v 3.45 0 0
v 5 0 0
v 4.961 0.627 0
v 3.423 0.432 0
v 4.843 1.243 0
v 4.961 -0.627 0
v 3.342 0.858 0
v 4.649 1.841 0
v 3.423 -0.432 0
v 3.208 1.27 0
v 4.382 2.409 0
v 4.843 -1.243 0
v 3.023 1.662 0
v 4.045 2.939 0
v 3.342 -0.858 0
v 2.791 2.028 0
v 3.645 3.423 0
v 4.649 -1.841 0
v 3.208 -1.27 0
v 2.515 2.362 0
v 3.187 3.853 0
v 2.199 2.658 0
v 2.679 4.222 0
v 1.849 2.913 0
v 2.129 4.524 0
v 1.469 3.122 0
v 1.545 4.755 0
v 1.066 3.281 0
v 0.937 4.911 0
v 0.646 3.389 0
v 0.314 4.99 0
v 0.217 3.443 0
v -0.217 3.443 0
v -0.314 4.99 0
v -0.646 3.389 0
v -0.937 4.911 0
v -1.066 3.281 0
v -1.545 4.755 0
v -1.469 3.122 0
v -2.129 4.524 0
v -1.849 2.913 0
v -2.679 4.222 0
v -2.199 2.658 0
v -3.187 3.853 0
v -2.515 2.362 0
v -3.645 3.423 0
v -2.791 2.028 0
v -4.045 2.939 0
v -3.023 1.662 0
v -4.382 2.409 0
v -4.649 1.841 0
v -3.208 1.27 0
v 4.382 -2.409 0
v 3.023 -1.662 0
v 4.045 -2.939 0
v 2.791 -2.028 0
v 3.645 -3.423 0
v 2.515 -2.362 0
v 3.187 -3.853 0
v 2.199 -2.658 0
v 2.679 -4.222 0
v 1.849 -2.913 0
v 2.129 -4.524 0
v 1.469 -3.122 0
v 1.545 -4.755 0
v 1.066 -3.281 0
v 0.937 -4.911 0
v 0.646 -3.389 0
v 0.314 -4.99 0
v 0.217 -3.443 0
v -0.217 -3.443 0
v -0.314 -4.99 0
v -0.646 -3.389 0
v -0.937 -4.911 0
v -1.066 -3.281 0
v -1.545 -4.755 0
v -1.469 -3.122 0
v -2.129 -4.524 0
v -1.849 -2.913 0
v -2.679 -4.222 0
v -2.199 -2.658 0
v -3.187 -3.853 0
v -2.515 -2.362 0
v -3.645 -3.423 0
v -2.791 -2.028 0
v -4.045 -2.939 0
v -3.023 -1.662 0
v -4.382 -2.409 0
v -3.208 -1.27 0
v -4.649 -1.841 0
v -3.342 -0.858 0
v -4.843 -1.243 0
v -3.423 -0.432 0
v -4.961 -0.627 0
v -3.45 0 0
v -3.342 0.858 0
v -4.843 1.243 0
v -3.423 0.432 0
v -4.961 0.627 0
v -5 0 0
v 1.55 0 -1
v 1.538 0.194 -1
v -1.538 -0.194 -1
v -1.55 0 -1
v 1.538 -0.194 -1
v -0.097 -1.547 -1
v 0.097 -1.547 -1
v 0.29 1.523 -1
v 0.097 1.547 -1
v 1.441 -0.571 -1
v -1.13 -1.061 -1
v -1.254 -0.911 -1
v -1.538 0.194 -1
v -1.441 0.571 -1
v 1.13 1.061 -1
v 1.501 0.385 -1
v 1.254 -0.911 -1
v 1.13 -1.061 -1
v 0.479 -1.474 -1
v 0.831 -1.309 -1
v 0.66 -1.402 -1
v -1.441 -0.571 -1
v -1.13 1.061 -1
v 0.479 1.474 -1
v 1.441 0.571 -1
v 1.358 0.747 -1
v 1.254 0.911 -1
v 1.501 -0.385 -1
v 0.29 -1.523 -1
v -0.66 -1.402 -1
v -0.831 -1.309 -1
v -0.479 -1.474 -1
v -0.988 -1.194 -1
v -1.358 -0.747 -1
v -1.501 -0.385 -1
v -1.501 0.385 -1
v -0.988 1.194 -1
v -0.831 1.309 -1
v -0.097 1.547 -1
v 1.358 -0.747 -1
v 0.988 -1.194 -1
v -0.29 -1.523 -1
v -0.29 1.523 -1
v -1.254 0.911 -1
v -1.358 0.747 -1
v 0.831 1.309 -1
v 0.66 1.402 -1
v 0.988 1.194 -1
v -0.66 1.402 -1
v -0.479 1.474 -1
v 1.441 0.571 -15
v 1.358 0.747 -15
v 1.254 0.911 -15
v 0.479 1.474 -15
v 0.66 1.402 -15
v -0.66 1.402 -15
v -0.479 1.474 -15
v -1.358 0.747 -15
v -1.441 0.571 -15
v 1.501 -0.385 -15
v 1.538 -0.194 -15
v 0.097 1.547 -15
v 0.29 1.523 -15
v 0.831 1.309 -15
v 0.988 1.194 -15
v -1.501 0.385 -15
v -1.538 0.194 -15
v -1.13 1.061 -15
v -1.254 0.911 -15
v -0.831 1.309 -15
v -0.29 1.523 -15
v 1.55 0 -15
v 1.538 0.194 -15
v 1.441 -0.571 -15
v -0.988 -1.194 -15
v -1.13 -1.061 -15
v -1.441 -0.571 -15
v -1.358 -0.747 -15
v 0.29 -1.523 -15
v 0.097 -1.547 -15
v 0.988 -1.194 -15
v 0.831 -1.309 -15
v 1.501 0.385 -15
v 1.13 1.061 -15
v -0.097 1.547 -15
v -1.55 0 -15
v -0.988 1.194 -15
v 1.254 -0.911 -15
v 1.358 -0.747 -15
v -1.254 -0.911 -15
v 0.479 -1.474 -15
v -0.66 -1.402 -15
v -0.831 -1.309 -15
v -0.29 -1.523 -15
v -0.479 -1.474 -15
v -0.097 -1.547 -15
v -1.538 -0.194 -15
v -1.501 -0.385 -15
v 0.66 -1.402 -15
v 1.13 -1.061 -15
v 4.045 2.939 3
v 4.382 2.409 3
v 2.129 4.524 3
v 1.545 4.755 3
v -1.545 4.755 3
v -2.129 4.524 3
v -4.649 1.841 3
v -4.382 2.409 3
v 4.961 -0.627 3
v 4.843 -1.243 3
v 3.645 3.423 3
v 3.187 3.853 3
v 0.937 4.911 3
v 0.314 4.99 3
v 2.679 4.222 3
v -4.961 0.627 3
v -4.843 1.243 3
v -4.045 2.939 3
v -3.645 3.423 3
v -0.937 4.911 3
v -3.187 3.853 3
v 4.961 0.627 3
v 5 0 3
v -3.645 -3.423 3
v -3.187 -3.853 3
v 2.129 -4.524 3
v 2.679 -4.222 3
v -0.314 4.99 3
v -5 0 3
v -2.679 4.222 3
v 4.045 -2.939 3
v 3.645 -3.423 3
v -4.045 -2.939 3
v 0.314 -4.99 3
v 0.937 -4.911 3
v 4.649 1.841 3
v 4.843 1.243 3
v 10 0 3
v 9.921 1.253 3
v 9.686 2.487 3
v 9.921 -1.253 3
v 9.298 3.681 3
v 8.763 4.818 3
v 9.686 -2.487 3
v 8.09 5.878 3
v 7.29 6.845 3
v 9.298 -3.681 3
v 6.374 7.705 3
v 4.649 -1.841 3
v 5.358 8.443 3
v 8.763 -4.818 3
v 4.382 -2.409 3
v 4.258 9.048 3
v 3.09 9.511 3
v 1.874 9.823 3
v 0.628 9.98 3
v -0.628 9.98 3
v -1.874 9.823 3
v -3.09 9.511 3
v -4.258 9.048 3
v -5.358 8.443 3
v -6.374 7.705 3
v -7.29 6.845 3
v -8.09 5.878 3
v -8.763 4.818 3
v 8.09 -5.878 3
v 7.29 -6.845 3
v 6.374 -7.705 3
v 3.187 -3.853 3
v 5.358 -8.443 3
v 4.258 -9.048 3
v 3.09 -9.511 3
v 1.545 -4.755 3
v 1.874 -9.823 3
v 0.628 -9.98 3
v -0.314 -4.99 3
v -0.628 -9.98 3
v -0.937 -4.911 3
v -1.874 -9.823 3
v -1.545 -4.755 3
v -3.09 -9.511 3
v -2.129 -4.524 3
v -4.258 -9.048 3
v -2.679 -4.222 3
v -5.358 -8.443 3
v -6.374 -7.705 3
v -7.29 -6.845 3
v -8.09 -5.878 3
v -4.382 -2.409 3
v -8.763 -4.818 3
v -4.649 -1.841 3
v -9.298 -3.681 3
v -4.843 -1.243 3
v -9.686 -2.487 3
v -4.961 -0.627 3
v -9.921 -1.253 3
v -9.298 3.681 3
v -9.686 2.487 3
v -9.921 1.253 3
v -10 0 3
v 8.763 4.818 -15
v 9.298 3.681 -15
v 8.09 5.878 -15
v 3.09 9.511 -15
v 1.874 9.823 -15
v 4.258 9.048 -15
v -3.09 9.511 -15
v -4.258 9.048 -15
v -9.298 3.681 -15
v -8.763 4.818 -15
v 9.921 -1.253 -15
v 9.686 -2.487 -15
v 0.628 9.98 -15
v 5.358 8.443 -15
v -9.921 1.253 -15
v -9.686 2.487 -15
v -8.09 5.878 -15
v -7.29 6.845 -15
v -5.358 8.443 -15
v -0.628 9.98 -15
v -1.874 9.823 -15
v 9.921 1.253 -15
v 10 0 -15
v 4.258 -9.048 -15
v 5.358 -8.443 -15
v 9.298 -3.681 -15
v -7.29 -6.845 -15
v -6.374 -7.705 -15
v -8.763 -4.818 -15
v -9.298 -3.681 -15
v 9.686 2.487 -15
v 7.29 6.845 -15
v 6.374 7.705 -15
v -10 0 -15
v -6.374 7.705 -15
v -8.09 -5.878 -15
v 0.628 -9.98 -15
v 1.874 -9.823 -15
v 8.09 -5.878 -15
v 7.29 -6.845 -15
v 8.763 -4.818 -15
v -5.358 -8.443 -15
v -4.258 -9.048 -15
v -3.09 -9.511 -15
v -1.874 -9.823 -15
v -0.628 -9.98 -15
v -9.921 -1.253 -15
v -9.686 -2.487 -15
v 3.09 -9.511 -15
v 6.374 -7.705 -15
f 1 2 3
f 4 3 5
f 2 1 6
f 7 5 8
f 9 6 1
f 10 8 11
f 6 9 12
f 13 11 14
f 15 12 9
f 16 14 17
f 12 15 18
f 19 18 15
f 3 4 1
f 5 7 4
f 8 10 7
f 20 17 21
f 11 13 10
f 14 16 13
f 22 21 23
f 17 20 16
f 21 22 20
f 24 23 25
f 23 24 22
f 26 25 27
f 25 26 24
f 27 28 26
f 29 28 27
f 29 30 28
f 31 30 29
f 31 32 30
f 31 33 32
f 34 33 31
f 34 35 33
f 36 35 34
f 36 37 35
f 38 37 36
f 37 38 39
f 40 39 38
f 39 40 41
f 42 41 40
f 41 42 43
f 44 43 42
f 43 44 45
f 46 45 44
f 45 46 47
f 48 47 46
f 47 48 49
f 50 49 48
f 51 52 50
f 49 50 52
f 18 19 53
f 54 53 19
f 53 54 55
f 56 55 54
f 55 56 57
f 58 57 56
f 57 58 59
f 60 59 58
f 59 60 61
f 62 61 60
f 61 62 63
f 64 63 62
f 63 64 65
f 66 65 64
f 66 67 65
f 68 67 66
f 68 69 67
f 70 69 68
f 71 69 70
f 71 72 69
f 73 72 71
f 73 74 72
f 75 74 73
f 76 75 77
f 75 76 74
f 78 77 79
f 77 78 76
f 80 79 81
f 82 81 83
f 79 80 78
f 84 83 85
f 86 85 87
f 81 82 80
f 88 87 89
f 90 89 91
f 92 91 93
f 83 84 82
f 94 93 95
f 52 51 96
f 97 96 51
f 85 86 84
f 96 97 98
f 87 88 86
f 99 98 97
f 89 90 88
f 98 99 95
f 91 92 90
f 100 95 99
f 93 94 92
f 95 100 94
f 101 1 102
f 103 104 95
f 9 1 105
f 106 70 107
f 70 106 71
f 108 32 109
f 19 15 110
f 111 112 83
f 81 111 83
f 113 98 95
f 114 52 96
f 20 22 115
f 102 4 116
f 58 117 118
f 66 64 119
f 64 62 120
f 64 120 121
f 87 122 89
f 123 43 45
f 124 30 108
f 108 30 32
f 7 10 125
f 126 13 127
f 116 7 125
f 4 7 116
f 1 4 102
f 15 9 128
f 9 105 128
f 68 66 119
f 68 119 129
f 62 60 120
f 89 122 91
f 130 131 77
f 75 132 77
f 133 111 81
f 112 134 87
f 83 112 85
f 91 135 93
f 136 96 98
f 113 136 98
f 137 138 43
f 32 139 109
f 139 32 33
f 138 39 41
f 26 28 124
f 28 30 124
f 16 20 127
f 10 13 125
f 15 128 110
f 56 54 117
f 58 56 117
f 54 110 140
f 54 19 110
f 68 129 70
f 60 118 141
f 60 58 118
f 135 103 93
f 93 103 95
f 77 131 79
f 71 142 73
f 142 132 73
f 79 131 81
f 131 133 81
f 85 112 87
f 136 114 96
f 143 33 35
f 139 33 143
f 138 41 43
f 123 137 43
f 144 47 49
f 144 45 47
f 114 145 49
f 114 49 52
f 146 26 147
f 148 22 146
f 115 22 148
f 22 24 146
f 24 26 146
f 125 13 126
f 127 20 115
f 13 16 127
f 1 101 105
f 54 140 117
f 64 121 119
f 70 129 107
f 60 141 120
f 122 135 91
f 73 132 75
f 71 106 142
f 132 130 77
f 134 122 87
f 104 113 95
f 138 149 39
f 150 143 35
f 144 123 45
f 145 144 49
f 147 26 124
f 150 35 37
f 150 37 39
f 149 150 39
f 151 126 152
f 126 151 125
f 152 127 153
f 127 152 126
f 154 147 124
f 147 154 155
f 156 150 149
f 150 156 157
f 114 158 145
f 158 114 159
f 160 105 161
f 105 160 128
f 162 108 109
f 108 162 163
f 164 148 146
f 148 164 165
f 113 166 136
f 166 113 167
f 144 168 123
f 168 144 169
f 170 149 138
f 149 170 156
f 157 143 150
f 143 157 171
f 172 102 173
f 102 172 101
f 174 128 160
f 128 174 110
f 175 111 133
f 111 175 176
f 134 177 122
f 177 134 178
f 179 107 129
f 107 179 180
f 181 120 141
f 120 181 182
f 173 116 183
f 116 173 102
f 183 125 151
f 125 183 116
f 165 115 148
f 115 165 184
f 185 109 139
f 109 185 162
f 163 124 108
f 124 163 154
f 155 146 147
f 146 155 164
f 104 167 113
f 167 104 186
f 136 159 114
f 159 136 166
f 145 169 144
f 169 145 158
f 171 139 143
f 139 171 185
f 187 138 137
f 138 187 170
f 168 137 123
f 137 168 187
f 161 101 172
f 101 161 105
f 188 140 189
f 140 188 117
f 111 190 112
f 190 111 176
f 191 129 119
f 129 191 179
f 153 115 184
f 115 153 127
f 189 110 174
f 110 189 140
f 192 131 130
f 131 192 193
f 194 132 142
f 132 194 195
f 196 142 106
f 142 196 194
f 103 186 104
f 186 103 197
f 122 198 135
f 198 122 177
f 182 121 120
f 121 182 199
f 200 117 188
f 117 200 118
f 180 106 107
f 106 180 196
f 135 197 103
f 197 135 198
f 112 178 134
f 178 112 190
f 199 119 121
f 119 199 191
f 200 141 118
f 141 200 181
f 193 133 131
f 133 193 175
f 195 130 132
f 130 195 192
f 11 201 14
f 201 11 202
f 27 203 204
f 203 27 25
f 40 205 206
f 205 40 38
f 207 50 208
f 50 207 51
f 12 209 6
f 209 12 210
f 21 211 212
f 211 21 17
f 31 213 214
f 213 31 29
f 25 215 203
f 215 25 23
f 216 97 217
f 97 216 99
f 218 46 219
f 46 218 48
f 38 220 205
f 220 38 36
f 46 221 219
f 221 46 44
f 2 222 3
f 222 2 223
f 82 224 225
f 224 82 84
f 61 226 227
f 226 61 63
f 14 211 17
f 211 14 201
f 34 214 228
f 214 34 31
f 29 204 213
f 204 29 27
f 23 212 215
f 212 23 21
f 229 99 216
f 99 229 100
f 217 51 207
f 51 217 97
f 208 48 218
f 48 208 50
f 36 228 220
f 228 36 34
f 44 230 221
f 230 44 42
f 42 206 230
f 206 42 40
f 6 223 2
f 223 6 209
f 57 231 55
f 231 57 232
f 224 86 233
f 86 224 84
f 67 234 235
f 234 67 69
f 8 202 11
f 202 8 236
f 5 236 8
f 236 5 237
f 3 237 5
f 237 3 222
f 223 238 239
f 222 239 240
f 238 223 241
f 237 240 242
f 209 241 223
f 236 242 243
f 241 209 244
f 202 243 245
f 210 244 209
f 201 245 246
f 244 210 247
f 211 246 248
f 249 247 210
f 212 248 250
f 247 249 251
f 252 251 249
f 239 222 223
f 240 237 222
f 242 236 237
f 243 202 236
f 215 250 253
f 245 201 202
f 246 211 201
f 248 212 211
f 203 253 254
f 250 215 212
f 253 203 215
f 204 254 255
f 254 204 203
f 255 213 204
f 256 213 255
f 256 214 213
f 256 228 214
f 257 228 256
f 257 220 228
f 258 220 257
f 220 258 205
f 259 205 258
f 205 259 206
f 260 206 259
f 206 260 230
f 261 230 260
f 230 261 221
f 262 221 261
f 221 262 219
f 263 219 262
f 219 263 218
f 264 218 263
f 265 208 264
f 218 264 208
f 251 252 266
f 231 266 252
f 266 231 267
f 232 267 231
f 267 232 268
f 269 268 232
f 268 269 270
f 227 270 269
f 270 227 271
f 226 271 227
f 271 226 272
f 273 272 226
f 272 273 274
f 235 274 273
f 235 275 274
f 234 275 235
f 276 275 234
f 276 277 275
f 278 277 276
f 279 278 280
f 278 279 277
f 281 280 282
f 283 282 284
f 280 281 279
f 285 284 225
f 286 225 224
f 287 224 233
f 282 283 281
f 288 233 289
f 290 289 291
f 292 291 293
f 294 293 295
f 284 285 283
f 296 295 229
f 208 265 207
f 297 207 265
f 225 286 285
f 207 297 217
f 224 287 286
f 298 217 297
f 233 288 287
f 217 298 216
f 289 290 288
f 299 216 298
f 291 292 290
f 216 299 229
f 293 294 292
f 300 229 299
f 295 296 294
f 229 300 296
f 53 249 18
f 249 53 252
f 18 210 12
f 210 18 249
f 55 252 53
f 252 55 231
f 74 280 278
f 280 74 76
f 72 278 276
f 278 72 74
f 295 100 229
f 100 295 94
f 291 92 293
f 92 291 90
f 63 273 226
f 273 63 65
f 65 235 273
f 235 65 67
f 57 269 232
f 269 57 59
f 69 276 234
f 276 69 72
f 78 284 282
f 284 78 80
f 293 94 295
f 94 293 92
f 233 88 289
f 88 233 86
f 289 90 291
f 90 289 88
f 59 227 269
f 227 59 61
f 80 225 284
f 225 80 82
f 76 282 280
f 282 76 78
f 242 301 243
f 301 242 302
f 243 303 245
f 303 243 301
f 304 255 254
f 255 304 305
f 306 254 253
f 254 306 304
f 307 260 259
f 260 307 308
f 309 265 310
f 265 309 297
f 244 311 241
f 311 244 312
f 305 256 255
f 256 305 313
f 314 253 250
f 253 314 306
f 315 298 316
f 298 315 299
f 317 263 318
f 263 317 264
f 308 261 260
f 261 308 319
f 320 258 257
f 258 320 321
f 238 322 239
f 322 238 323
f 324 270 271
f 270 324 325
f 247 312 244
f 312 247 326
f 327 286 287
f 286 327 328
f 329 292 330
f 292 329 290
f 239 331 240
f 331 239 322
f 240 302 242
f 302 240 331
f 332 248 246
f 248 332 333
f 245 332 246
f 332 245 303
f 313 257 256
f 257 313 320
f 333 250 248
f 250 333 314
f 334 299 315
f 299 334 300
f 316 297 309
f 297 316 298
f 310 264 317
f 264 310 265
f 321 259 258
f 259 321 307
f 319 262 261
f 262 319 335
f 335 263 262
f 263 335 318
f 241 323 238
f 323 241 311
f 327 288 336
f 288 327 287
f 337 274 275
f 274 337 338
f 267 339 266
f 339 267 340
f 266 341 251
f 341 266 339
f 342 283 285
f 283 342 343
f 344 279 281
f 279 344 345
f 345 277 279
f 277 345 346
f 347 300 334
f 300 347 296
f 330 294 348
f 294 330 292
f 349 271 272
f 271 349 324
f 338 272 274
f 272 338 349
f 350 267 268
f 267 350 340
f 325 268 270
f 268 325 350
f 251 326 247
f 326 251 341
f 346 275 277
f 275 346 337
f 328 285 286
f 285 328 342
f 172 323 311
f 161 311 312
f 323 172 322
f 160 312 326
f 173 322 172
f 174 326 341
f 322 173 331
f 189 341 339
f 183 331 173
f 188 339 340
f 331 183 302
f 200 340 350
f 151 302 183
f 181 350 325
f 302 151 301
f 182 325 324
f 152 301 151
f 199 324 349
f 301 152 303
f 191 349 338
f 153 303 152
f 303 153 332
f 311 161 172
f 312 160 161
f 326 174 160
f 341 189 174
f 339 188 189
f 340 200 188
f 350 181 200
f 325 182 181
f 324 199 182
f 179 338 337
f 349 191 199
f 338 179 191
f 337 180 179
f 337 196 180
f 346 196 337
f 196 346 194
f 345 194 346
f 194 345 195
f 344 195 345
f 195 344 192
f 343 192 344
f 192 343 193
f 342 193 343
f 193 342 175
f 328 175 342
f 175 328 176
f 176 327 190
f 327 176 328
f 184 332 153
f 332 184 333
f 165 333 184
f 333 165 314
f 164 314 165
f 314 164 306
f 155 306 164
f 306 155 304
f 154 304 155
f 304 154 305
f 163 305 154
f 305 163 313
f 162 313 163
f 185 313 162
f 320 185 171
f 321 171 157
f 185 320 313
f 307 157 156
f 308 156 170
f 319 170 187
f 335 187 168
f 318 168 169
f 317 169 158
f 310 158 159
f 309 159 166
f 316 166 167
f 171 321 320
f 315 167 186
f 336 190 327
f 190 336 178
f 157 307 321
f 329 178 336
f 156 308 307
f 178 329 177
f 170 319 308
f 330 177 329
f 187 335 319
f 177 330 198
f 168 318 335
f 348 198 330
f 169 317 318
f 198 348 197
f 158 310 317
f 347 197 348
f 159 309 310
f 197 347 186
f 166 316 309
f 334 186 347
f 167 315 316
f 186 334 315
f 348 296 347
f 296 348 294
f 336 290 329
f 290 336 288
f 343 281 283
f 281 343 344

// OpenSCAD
$fn = 50;

difference() {
	union() {
		translate(v = [0, 0, -15.0]) {
			cylinder(h = 18, r = 10.0);
		}
	}
	union() {
		translate(v = [0, 0, 0]) {
			rotate(a = [0, 0, 0]) {
				difference() {
					union() {
						translate(v = [0, 0, -18.0]) {
							cylinder(h = 18, r = 1.25);
						}
						translate(v = [0, 0, -1.0]) {
							cylinder(h = 1.0, r1 = 1.55, r2 = 3.45);
						}
						translate(v = [0, 0, -18.0]) {
							cylinder(h = 18, r = 1.55);
						}
						translate(v = [0, 0, -18.0]) {
							cylinder(h = 18, r = 1.25);
						}
					}
					union();
				}
			}
		}
		#cylinder(h = 3, r = 5.0);
	}
}
